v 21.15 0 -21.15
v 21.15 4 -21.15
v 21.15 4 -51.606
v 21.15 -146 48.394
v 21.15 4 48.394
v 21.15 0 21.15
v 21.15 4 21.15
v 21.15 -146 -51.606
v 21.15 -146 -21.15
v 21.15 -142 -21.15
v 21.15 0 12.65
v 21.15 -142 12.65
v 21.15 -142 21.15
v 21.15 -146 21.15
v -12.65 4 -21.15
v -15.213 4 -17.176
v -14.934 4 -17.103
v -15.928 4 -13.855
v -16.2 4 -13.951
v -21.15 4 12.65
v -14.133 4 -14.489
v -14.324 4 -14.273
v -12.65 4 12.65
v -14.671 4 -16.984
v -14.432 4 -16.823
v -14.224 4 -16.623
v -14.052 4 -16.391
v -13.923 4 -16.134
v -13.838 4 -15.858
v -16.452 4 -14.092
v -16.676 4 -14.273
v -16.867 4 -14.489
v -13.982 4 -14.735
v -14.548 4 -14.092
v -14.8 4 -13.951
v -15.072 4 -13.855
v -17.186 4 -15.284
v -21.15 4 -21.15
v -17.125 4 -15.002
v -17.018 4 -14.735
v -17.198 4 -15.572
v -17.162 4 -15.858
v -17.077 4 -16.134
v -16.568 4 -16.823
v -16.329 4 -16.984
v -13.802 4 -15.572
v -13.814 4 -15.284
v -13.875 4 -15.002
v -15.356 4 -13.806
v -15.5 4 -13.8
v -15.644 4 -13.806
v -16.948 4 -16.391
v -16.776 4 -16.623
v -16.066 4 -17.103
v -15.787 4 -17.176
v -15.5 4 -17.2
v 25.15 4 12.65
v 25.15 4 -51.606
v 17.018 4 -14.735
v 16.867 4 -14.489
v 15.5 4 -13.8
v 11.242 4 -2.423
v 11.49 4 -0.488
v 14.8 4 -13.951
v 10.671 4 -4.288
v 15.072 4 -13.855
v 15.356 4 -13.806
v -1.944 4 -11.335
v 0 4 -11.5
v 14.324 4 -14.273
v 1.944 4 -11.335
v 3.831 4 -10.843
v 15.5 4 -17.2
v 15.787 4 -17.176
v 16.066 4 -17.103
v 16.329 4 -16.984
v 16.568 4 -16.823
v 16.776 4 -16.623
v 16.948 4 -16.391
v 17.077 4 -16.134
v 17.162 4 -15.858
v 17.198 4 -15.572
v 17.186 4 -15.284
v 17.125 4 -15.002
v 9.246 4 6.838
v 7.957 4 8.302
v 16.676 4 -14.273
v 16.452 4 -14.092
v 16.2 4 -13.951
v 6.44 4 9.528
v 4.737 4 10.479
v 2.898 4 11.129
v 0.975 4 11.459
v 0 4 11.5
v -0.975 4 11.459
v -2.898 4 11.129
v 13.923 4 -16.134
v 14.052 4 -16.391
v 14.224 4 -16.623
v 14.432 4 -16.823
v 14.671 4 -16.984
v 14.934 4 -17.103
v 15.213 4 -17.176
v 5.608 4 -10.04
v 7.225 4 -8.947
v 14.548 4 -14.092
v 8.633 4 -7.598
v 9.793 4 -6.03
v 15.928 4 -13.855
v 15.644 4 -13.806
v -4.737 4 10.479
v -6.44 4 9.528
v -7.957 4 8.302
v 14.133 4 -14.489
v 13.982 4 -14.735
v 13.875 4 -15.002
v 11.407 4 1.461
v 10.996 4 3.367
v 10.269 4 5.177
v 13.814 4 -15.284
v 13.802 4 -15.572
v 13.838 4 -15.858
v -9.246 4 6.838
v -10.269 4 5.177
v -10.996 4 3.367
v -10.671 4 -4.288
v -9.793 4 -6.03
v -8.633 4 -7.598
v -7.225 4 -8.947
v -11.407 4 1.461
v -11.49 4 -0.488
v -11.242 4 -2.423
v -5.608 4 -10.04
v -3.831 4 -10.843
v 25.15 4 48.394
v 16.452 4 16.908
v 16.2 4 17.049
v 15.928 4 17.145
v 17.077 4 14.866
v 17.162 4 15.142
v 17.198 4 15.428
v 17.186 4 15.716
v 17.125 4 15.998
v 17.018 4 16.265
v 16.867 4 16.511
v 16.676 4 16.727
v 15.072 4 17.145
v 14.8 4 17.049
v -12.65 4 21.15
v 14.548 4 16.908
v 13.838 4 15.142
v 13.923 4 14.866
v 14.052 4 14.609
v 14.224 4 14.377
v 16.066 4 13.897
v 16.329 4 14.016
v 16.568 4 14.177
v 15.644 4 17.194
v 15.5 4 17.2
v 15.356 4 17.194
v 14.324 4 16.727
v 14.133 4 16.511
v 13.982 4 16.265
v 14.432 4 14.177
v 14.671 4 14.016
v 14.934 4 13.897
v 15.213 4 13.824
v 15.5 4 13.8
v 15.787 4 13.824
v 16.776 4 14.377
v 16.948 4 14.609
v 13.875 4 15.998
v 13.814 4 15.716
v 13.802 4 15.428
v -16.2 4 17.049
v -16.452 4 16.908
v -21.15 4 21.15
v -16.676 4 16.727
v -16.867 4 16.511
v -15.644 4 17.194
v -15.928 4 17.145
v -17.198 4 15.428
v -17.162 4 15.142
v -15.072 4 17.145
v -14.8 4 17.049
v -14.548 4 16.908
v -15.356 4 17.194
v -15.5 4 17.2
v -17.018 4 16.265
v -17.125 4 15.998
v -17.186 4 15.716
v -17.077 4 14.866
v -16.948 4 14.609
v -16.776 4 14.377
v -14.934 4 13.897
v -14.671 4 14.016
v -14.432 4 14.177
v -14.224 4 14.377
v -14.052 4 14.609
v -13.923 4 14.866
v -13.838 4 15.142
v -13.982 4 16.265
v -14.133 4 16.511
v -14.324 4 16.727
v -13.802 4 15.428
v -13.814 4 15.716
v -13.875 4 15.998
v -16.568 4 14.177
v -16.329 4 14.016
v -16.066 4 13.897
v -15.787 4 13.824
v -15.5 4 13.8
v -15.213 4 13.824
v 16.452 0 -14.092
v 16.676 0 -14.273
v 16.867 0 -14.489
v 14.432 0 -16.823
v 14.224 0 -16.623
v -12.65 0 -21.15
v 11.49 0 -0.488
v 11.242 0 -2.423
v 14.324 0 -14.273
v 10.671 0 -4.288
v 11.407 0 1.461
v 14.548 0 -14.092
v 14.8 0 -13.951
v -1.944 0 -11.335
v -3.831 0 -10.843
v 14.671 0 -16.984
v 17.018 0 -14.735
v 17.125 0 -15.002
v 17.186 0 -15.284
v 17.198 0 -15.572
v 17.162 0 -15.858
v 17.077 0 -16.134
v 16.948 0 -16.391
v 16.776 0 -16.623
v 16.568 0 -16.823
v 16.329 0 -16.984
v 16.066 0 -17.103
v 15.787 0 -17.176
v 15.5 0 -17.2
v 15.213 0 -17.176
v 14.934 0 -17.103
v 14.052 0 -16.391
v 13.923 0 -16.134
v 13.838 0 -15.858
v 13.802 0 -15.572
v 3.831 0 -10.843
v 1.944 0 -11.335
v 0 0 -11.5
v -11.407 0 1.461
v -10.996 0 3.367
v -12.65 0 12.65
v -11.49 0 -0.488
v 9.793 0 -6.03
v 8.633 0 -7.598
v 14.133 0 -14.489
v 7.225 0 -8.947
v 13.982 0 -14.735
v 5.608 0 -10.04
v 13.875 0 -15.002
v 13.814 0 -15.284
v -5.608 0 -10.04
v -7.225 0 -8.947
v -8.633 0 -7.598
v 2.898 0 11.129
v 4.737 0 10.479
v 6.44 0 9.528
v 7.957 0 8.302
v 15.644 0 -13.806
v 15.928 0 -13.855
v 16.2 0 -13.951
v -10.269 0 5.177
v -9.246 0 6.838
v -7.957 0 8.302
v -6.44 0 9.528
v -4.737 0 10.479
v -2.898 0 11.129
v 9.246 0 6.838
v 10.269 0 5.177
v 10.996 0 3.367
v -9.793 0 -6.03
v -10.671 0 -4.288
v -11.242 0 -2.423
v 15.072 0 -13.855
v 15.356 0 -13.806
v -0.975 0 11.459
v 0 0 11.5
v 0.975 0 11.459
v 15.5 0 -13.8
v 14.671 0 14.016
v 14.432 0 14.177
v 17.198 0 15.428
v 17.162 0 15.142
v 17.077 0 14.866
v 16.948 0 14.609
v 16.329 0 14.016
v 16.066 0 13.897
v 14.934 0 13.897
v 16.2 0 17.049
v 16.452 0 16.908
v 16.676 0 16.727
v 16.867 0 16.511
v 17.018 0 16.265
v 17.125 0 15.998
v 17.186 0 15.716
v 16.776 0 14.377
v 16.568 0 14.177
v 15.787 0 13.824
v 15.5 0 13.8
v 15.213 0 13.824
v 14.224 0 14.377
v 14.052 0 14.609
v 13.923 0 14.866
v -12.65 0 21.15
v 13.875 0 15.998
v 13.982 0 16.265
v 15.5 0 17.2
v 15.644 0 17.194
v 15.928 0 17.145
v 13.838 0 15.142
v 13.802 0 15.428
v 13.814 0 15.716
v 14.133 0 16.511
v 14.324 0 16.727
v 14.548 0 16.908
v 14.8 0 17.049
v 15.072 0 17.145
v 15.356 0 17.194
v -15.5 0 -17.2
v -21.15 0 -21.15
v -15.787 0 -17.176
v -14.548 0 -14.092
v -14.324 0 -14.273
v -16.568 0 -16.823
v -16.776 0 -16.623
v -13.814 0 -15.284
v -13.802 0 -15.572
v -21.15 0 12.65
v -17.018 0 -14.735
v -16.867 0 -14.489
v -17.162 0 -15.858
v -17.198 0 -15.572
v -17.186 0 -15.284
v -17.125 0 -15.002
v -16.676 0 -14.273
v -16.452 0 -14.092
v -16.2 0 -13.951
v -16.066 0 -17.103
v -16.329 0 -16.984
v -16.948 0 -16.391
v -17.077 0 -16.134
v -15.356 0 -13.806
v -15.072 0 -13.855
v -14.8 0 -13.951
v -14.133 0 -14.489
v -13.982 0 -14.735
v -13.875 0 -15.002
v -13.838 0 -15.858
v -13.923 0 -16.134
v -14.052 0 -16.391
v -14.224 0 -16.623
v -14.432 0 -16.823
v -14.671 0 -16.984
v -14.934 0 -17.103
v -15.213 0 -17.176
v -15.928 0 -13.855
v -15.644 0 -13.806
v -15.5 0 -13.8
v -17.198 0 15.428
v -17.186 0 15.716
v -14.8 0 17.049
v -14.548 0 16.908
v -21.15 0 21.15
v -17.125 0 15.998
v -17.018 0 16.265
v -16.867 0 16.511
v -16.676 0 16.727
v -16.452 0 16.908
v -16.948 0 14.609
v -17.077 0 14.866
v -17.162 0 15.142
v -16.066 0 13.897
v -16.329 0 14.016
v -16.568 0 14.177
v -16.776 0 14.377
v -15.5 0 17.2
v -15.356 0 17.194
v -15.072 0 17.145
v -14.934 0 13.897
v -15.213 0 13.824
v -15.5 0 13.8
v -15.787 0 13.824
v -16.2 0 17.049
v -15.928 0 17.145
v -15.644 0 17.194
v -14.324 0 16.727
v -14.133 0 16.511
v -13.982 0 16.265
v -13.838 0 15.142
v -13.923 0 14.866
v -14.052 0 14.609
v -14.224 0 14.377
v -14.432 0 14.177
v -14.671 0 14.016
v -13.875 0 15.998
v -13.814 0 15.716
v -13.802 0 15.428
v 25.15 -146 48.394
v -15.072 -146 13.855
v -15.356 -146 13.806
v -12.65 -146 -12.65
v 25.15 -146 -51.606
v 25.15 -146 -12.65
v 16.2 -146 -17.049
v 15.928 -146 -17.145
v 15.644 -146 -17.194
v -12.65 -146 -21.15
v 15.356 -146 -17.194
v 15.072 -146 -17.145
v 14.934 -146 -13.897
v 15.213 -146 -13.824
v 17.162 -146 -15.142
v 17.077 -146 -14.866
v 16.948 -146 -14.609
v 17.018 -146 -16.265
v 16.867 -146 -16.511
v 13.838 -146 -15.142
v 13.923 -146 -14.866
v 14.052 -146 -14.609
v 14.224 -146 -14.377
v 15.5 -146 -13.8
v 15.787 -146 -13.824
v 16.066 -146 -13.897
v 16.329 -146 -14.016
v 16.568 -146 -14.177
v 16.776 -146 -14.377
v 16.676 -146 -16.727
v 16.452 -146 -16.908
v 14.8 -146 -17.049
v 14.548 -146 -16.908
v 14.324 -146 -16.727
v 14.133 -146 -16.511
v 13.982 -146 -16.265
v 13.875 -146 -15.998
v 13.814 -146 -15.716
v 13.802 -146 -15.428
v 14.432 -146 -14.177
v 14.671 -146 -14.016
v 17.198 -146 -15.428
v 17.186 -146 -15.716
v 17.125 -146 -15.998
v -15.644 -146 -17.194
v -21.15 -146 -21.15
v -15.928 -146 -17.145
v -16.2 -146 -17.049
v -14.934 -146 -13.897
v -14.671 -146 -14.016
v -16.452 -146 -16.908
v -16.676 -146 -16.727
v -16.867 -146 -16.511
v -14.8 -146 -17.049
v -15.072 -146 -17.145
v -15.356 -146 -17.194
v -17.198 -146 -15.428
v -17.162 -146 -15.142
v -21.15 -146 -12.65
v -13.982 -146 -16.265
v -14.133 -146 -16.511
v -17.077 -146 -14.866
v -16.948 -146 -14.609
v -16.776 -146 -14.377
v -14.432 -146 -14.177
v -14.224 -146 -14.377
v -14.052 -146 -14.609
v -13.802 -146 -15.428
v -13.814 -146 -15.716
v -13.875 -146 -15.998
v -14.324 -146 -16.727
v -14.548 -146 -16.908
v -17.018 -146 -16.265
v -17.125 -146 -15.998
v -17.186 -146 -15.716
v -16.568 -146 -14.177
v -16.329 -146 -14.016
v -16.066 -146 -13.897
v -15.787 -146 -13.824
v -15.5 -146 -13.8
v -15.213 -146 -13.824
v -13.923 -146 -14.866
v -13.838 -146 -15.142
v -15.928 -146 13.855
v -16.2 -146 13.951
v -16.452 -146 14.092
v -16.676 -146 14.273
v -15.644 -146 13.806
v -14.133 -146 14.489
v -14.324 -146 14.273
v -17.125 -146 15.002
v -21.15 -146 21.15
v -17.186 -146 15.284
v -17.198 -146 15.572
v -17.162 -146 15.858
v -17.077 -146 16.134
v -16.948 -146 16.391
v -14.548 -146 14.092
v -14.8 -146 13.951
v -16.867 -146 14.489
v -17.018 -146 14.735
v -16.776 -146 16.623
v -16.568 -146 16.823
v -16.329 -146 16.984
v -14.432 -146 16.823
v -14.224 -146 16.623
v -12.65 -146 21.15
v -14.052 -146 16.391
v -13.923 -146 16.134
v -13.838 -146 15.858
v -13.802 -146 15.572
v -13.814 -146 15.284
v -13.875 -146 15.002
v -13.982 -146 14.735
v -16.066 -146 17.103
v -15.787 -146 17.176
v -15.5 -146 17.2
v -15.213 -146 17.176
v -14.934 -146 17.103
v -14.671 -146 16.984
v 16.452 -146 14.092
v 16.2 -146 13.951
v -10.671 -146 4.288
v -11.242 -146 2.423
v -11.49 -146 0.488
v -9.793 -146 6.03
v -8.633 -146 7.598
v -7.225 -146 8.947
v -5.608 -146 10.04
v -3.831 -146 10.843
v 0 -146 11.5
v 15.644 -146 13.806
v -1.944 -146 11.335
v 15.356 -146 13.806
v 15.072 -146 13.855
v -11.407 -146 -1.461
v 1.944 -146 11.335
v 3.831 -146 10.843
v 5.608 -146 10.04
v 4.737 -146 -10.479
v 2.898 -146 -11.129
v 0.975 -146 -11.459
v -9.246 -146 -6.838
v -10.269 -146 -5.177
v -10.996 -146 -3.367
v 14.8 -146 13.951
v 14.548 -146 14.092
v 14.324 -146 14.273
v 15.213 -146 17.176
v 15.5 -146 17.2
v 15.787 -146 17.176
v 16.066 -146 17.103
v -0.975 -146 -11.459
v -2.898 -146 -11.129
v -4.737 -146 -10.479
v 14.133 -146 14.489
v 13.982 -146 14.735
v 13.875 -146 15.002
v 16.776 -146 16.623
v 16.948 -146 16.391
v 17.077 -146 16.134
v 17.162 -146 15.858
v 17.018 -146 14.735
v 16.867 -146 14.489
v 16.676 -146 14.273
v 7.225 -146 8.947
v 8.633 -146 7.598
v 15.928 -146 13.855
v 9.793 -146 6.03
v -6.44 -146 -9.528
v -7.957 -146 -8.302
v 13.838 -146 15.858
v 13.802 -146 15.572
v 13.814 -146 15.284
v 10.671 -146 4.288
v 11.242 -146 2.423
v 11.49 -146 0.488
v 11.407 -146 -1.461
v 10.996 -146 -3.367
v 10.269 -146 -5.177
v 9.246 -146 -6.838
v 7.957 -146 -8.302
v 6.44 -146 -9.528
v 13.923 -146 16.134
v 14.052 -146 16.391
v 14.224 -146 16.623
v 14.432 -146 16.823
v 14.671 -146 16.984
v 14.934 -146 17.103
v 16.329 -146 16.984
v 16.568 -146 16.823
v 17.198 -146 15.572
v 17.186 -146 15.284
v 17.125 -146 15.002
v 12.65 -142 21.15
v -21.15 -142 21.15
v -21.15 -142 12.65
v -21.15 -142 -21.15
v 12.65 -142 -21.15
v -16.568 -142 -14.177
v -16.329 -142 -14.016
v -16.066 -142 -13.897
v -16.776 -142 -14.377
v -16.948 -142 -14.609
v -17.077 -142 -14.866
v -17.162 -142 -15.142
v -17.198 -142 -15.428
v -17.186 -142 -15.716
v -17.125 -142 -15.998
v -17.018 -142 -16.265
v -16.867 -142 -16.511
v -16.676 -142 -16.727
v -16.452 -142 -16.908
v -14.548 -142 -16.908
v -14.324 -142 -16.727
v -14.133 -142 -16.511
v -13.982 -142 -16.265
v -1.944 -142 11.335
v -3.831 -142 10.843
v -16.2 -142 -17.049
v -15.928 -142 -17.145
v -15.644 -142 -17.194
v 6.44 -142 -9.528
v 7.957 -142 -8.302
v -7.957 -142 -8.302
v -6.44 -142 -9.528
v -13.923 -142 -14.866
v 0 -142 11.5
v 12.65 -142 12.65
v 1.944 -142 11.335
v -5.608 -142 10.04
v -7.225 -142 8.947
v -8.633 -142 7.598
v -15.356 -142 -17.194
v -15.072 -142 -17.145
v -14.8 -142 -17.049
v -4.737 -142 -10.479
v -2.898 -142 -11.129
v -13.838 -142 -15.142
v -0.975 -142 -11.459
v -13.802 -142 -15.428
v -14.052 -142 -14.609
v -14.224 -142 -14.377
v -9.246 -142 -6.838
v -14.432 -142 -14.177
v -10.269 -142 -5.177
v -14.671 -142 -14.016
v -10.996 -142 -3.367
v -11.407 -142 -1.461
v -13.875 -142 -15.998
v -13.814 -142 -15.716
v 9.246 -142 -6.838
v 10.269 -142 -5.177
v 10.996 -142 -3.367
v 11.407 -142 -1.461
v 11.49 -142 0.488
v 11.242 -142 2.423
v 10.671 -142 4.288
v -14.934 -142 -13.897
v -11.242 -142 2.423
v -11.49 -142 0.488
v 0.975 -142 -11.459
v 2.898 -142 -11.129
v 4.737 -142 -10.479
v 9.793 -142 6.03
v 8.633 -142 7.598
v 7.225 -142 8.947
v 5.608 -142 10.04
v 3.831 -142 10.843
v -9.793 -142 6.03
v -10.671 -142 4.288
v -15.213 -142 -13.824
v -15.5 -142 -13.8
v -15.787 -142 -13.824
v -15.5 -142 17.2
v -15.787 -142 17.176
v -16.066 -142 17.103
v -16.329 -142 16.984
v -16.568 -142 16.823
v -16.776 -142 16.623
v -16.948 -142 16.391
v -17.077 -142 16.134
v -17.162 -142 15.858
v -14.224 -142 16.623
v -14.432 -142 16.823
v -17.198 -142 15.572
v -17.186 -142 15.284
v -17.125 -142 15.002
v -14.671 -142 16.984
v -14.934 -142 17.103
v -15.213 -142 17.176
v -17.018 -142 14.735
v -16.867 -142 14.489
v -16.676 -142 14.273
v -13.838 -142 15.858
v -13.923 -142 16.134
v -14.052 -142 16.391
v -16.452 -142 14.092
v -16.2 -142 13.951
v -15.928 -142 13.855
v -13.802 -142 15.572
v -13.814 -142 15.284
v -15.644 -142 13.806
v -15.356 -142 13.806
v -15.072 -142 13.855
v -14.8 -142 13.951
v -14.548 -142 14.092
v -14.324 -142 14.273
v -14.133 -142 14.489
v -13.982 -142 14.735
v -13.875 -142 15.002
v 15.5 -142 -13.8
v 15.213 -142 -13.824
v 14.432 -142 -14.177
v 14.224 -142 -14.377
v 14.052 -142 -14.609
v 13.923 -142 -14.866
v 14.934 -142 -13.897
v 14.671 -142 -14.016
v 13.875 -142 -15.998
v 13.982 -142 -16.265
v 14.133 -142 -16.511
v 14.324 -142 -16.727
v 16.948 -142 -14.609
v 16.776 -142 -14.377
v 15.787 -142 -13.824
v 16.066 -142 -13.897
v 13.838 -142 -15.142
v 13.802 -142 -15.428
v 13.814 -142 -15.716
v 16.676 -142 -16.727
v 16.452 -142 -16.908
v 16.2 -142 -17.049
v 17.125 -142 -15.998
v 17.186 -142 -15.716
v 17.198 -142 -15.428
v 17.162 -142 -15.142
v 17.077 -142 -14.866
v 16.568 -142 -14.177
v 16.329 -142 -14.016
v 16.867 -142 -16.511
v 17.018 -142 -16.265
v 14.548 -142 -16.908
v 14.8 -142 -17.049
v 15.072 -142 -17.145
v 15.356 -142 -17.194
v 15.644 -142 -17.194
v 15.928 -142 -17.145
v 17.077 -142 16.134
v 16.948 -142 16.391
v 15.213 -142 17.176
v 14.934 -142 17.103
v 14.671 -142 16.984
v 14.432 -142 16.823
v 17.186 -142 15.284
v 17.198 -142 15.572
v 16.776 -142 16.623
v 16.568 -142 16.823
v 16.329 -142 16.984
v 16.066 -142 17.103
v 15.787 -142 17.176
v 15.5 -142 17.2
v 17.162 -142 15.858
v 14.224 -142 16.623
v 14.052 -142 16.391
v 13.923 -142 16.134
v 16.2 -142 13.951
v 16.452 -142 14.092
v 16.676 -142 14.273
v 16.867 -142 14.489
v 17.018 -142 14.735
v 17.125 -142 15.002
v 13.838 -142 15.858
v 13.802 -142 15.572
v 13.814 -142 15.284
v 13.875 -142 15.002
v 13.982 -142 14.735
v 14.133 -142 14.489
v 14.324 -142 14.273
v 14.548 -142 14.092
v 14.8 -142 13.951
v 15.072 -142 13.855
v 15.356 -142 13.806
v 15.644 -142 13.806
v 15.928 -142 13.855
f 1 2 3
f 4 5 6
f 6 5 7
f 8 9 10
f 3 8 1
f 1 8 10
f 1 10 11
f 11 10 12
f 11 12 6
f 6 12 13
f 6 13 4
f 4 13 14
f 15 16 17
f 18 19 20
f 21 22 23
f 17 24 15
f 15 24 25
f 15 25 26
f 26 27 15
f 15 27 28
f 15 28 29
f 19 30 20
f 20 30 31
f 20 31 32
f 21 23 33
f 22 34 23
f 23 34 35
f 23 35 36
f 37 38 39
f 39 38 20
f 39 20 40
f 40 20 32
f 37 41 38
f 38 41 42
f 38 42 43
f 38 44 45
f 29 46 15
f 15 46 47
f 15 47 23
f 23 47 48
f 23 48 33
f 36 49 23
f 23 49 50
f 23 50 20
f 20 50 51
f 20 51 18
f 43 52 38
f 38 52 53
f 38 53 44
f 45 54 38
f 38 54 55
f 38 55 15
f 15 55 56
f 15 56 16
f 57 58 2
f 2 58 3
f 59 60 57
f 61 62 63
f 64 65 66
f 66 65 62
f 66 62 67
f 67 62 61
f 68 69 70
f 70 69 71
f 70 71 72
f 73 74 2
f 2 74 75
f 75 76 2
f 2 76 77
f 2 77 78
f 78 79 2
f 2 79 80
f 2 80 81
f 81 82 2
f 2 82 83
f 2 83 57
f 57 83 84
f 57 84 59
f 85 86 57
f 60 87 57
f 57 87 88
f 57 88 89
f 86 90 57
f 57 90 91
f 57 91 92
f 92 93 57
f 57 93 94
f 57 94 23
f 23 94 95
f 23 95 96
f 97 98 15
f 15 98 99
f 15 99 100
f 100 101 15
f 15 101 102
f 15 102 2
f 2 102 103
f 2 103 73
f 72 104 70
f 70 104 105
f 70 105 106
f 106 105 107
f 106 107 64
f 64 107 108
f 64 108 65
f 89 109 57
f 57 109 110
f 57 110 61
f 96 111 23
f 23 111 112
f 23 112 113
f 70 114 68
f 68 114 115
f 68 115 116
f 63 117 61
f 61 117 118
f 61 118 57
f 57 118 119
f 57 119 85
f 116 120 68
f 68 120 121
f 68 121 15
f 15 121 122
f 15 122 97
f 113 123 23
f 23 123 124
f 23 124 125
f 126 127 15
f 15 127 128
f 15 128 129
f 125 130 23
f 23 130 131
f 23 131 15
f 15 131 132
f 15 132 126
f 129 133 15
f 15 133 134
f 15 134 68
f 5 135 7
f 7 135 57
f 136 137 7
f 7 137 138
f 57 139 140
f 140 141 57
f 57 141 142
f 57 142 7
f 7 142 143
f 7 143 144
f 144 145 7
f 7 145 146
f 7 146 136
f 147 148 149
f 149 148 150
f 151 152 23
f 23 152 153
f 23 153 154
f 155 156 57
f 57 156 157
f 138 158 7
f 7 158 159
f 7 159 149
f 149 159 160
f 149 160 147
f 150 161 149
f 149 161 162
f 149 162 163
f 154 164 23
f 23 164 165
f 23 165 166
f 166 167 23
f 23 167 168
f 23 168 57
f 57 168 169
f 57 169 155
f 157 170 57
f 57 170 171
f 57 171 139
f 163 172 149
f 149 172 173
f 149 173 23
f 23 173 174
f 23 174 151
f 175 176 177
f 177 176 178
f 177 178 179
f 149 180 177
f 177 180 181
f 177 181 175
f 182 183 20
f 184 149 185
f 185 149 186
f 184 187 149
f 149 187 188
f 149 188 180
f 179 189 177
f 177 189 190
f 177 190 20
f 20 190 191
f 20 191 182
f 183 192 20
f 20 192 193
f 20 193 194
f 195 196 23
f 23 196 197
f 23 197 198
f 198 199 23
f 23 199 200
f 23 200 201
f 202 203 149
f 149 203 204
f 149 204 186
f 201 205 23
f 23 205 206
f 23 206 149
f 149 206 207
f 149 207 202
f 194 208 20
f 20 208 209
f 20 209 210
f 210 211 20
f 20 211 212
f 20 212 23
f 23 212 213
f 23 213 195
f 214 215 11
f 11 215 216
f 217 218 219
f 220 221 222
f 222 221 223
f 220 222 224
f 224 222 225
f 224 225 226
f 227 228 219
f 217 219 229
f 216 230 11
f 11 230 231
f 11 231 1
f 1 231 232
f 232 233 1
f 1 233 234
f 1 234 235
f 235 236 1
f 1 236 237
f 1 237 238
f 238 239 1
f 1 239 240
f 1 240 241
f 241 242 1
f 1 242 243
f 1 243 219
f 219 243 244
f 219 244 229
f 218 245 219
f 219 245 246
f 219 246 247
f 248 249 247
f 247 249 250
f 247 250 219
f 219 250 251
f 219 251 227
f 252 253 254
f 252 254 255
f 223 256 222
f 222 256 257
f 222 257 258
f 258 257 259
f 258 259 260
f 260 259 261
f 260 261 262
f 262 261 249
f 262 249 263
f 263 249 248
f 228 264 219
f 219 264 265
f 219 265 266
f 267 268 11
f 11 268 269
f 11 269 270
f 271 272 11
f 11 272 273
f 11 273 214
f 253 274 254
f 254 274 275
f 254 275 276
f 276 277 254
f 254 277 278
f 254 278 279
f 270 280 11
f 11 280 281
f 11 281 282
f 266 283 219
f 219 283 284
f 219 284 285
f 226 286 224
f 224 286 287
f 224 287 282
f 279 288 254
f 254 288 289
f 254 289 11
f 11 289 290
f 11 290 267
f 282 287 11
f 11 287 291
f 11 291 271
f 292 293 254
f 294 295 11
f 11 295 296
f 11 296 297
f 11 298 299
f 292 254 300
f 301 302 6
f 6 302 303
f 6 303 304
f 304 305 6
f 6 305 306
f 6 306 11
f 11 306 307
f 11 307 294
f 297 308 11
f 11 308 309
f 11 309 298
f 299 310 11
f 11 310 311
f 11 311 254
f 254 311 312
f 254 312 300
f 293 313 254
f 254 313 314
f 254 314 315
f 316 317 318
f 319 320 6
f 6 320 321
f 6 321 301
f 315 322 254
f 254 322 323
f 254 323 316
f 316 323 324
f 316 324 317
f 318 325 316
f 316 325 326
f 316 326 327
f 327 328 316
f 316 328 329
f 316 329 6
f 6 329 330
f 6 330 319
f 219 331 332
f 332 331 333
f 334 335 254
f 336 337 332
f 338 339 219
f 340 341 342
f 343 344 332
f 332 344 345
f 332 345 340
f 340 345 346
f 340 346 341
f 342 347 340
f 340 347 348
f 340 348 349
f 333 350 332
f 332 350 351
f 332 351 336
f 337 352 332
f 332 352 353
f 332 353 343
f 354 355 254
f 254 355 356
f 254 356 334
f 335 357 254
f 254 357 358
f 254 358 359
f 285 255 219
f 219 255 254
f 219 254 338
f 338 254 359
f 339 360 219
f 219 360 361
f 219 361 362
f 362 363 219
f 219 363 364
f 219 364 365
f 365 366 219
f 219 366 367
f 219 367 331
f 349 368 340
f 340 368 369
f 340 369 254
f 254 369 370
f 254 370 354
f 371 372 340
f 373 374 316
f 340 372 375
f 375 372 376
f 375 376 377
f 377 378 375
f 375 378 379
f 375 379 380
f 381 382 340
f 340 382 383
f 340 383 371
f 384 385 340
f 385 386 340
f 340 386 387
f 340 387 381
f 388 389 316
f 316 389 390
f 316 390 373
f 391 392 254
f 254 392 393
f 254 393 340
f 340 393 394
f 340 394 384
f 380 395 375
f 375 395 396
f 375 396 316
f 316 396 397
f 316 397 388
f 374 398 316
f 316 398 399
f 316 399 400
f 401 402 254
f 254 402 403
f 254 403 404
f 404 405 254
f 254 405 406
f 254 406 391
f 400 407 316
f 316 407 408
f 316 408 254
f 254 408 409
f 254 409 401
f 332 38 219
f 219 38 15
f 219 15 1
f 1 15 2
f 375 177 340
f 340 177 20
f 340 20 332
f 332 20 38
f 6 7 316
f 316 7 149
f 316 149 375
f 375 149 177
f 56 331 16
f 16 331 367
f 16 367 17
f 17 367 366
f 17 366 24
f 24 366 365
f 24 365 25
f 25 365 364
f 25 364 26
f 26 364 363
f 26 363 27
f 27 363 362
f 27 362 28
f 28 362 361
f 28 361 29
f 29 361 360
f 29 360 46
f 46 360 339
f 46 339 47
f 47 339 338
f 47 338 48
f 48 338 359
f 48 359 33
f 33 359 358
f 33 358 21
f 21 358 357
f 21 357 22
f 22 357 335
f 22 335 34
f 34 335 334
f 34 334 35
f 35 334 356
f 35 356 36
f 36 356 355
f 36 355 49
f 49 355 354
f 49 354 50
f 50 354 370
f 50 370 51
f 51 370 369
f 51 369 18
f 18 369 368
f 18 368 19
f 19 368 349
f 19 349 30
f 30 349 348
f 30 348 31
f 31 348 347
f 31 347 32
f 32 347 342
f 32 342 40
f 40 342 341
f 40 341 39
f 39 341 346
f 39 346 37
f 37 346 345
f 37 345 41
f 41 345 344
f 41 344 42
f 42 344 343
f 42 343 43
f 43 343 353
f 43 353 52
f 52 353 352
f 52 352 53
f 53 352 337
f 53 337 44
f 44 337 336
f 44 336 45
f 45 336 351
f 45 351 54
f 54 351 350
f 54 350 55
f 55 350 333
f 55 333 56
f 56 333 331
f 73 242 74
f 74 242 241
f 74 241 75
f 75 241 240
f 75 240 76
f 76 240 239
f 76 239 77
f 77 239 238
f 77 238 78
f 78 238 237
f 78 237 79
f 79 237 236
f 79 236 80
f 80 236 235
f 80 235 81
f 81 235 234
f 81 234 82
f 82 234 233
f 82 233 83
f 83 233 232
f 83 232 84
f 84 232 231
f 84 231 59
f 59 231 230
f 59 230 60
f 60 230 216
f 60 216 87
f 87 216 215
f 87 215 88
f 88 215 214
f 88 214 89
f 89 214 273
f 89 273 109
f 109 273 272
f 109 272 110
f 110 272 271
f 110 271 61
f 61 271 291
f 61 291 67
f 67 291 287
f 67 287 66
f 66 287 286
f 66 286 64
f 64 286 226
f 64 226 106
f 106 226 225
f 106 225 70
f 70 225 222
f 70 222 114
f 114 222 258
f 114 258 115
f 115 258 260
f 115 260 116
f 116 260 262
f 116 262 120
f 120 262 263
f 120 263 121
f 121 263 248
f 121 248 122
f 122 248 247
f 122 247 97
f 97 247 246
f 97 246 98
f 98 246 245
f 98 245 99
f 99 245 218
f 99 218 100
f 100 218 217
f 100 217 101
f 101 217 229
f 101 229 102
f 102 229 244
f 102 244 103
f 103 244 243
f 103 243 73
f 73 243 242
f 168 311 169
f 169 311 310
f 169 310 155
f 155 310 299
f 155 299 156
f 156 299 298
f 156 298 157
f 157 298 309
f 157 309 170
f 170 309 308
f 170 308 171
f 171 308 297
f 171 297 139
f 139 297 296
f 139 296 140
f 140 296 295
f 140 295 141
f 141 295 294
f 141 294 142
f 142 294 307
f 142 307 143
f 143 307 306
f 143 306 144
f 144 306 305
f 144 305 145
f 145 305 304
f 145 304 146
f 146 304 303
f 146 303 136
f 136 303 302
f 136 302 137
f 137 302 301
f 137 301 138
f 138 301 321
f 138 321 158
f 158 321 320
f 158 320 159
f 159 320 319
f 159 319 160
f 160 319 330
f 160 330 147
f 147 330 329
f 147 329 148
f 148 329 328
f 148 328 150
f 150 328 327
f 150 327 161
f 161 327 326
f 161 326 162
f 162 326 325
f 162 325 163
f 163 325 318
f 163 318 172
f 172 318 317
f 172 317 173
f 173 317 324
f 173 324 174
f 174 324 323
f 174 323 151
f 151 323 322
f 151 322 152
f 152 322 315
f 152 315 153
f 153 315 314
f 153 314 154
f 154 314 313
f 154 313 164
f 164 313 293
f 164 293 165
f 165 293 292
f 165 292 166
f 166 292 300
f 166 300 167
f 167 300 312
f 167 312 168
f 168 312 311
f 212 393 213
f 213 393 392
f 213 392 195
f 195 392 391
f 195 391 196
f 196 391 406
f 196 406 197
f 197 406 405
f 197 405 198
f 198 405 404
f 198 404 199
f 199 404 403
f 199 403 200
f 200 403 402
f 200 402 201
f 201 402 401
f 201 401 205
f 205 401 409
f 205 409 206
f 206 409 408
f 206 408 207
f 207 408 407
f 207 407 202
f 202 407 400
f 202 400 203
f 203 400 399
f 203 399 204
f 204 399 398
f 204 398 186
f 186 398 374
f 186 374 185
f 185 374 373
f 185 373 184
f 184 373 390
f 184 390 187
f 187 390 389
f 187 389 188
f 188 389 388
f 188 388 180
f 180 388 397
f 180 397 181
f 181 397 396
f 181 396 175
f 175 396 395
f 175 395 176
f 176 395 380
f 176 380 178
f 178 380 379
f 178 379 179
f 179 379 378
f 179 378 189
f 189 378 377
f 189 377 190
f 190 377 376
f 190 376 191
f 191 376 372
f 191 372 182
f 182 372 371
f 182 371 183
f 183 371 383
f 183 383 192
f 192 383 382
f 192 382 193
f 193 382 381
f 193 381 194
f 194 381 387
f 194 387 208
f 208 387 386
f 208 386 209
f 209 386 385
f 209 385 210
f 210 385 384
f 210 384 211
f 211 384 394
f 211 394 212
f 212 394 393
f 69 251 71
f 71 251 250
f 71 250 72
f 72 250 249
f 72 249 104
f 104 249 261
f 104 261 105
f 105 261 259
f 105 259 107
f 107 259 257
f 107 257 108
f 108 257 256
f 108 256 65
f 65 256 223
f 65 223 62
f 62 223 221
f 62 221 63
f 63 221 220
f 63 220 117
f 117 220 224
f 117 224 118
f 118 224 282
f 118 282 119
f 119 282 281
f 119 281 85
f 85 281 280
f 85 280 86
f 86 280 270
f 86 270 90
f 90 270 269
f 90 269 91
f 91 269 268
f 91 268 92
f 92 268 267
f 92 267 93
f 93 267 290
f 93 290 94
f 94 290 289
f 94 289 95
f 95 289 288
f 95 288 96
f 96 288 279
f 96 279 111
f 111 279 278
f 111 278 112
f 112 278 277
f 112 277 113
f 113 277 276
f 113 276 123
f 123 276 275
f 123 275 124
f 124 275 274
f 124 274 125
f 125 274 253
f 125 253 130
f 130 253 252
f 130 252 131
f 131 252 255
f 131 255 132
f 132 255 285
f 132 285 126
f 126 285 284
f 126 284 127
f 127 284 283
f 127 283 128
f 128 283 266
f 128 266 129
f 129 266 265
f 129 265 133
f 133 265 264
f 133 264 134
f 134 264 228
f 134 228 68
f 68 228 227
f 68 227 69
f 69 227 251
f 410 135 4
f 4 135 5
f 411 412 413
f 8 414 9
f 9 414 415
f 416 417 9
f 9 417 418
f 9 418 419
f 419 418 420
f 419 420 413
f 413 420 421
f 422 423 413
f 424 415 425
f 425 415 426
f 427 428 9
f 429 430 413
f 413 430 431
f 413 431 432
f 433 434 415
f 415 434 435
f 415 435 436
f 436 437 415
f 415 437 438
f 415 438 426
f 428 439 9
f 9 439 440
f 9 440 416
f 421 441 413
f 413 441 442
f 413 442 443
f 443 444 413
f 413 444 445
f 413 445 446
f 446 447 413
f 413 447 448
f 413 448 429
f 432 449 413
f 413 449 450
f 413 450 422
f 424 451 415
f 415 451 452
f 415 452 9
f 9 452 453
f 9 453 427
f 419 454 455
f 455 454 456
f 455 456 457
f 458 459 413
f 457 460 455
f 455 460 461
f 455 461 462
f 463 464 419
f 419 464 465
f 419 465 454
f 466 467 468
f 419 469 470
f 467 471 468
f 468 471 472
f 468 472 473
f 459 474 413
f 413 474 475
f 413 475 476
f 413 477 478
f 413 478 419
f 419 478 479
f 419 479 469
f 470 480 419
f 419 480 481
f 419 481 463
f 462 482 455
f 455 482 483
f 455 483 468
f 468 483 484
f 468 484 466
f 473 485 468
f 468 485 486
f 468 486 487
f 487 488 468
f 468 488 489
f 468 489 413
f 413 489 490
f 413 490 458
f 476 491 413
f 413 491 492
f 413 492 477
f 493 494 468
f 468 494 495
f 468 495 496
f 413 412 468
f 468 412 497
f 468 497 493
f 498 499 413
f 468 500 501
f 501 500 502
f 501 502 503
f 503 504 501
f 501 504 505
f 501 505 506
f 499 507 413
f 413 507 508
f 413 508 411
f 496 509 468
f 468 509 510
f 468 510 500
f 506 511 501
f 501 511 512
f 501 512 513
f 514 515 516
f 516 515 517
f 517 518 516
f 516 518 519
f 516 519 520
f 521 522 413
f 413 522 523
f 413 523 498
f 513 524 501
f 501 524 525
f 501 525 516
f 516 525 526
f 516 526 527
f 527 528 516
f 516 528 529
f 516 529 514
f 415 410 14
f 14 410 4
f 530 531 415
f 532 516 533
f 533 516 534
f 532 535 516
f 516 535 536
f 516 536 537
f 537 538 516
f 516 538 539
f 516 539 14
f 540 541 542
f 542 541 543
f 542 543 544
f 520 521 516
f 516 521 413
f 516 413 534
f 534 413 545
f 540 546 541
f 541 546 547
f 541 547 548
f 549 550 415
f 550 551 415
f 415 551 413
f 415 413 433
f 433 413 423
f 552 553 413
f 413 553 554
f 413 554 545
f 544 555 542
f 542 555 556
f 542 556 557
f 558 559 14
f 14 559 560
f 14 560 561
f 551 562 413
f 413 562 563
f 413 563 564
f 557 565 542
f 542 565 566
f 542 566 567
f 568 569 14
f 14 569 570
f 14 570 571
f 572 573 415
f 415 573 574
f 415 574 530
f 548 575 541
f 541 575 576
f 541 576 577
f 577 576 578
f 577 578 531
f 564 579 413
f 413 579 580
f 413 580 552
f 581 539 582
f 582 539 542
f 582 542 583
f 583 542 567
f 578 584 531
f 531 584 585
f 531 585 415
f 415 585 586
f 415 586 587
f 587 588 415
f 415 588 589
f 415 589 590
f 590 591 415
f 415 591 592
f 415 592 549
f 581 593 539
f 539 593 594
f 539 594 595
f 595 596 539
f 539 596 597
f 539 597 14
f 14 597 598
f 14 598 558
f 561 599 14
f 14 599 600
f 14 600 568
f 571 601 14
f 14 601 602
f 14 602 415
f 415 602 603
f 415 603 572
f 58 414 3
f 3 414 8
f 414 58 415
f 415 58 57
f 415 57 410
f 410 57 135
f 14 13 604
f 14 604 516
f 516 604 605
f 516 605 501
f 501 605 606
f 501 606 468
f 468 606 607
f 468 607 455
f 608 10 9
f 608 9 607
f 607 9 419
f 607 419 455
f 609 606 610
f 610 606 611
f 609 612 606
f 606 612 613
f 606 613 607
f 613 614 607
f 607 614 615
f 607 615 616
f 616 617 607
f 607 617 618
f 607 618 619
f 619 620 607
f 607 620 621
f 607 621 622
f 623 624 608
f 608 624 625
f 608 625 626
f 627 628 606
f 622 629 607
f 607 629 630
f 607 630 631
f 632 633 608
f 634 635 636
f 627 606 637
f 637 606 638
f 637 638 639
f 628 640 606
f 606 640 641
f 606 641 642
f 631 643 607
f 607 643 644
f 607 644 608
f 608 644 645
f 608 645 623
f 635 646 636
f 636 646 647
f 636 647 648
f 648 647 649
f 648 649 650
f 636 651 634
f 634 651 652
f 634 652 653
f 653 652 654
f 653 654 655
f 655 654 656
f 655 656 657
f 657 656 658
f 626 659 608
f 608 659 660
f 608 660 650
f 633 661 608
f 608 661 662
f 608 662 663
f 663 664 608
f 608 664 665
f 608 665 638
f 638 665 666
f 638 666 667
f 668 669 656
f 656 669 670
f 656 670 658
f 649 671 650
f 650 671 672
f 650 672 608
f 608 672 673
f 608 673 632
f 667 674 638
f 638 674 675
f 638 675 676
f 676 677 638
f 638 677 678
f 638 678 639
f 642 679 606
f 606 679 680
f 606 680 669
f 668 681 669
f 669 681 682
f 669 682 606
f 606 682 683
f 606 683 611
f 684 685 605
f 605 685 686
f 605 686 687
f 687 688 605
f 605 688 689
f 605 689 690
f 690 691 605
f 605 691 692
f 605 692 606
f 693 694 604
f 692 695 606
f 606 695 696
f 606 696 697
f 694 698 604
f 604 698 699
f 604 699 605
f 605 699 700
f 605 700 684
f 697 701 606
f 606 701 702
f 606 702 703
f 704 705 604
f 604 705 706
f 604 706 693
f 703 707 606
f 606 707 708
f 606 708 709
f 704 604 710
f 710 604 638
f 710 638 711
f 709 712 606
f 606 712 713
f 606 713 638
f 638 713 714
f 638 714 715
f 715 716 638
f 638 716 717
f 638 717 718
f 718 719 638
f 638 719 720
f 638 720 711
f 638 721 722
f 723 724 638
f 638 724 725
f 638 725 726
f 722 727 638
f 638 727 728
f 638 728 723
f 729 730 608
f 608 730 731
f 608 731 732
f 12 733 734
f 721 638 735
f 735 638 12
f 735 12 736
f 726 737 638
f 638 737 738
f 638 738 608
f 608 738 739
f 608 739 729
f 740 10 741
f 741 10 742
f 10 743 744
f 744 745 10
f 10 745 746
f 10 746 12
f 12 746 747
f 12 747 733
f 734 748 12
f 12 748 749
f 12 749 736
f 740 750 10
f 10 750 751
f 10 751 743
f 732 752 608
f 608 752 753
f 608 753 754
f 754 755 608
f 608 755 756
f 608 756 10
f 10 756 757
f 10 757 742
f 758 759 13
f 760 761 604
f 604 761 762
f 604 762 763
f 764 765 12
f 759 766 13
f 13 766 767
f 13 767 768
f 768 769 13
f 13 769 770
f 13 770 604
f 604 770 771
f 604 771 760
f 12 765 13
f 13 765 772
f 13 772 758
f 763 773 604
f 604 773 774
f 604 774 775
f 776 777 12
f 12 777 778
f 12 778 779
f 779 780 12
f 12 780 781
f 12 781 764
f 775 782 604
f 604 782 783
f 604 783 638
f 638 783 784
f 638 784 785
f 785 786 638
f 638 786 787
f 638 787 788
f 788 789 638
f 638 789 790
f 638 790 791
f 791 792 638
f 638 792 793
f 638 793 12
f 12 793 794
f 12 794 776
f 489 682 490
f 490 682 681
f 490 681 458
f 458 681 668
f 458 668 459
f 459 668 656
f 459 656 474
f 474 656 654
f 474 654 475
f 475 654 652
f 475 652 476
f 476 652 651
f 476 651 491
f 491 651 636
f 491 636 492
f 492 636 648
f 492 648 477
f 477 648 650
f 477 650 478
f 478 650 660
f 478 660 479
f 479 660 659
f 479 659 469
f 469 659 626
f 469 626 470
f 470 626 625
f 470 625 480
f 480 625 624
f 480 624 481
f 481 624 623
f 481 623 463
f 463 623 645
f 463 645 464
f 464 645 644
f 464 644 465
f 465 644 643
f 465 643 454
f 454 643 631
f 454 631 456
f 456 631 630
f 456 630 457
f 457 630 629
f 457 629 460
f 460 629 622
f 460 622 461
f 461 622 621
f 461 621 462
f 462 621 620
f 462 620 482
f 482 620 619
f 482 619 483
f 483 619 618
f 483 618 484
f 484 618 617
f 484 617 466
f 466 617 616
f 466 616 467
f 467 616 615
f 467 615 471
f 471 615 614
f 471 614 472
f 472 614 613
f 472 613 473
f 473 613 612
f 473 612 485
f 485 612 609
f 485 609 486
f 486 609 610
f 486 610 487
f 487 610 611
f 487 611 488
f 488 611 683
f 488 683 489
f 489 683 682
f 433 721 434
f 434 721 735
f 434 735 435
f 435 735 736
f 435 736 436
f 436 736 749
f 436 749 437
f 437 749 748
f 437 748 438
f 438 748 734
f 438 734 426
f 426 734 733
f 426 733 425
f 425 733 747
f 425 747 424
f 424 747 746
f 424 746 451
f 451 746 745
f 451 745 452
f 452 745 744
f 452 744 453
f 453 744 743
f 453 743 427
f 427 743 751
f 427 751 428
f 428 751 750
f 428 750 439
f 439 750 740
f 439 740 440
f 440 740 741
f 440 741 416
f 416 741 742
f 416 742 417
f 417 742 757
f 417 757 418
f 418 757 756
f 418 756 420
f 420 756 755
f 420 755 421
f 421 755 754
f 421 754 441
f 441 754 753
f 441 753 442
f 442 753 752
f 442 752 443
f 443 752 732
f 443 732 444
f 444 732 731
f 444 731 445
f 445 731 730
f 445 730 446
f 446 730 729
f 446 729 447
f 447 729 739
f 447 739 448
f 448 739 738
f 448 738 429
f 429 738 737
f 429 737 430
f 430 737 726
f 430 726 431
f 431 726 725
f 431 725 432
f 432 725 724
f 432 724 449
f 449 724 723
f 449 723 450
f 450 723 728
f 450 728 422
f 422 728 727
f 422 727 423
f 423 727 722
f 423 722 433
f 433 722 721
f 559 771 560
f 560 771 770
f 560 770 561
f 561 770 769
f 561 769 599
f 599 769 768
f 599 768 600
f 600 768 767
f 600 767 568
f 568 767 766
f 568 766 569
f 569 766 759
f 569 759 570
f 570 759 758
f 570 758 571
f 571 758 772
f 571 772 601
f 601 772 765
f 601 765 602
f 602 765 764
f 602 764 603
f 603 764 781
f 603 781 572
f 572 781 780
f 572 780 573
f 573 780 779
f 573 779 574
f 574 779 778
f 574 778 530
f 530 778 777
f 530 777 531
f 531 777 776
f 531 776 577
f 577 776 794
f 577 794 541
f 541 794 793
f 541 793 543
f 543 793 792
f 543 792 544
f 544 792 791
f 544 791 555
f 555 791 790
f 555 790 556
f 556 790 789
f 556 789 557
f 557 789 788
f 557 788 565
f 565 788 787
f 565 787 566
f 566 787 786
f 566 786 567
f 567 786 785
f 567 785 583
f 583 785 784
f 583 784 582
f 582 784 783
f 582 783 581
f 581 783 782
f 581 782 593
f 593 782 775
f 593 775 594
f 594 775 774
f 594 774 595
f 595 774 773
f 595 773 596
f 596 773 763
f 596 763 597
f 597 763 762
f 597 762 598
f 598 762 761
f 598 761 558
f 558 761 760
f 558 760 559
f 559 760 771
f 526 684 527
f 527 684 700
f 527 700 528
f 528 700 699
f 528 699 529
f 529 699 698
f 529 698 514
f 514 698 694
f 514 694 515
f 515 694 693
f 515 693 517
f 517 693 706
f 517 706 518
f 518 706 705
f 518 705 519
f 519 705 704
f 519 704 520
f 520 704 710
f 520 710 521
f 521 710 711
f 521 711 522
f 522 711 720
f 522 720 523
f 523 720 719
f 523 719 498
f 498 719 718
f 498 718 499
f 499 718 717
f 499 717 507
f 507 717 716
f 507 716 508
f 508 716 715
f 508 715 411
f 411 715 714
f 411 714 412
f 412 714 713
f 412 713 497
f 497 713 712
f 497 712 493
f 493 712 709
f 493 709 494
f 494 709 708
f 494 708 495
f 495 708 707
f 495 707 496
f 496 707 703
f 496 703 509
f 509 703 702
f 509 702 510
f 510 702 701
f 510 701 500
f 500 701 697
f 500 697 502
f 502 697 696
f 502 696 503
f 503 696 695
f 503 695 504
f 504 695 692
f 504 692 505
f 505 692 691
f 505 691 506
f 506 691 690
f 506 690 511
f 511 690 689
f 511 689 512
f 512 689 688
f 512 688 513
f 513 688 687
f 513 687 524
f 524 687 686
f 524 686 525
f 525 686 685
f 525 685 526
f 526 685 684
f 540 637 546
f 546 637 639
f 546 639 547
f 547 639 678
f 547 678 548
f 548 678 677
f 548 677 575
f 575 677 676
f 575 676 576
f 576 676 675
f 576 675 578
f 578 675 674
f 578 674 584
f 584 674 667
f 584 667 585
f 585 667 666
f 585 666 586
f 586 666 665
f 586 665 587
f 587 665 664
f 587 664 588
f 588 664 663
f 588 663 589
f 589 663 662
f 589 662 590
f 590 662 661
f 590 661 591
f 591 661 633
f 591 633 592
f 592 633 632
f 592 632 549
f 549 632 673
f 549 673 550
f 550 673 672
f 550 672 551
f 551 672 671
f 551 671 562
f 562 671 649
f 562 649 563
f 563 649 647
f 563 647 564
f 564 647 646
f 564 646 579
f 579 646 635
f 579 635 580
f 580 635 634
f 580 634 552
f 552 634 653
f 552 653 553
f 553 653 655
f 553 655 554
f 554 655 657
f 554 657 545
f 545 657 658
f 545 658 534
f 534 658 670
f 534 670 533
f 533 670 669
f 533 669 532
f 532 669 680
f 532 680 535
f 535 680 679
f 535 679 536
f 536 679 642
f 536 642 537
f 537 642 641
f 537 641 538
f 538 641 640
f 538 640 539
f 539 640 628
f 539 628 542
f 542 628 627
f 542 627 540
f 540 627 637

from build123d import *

# Parameters (mm, degrees)
SKETCH2_W           = 42.3
SKETCH2_H           = 42.3
SKETCH2_R           = 1.7
SKETCH2_R_2         = 11.5
BOSS_EXTRUDE1_DEPTH = 4
SKETCH10_W          = 100
SKETCH10_H          = 150
BOSS_EXTRUDE3_DEPTH = 4


with BuildPart() as part:
    # Sketch2 → Boss-Extrude1 (new body)
    with BuildSketch(Plane(origin=(0, 0, 0), x_dir=(1, 0, 0), z_dir=(0, 1, 0))):
        Rectangle(SKETCH2_W, SKETCH2_H)
        with Locations(Location((-15.5, 15.5, 0), (0, 0, 270))):
            Circle(SKETCH2_R, mode=Mode.SUBTRACT)
        with Locations(Location((15.5, 15.5, 0), (0, 0, 270))):
            Circle(SKETCH2_R, mode=Mode.SUBTRACT)
        with Locations(Location((15.5, -15.5, 0), (0, 0, 270))):
            Circle(SKETCH2_R, mode=Mode.SUBTRACT)
        with Locations(Location((-15.5, -15.5, 0), (0, 0, 270))):
            Circle(SKETCH2_R, mode=Mode.SUBTRACT)
        with Locations(Location((0, 0, 0), (0, 0, 270))):
            Circle(SKETCH2_R_2, mode=Mode.SUBTRACT)
    boss_extrude1 = extrude(amount=BOSS_EXTRUDE1_DEPTH)

    # Sketch10 → Boss-Extrude3 (add)
    with BuildSketch(Plane(origin=(21.15, 4, 21.15), x_dir=(0, 0, -1), z_dir=(1, 0, 0))):
        with Locations((22.755859724, -75)):
            Rectangle(SKETCH10_W, SKETCH10_H)
    extrude(amount=BOSS_EXTRUDE3_DEPTH)

    # Mirror1: Boss-Extrude1 across plane
    add(boss_extrude1.mirror(Plane(origin=(0, -71, 0), x_dir=(0, 0, 1), z_dir=(0, -1, 0))))


solid = part.part
